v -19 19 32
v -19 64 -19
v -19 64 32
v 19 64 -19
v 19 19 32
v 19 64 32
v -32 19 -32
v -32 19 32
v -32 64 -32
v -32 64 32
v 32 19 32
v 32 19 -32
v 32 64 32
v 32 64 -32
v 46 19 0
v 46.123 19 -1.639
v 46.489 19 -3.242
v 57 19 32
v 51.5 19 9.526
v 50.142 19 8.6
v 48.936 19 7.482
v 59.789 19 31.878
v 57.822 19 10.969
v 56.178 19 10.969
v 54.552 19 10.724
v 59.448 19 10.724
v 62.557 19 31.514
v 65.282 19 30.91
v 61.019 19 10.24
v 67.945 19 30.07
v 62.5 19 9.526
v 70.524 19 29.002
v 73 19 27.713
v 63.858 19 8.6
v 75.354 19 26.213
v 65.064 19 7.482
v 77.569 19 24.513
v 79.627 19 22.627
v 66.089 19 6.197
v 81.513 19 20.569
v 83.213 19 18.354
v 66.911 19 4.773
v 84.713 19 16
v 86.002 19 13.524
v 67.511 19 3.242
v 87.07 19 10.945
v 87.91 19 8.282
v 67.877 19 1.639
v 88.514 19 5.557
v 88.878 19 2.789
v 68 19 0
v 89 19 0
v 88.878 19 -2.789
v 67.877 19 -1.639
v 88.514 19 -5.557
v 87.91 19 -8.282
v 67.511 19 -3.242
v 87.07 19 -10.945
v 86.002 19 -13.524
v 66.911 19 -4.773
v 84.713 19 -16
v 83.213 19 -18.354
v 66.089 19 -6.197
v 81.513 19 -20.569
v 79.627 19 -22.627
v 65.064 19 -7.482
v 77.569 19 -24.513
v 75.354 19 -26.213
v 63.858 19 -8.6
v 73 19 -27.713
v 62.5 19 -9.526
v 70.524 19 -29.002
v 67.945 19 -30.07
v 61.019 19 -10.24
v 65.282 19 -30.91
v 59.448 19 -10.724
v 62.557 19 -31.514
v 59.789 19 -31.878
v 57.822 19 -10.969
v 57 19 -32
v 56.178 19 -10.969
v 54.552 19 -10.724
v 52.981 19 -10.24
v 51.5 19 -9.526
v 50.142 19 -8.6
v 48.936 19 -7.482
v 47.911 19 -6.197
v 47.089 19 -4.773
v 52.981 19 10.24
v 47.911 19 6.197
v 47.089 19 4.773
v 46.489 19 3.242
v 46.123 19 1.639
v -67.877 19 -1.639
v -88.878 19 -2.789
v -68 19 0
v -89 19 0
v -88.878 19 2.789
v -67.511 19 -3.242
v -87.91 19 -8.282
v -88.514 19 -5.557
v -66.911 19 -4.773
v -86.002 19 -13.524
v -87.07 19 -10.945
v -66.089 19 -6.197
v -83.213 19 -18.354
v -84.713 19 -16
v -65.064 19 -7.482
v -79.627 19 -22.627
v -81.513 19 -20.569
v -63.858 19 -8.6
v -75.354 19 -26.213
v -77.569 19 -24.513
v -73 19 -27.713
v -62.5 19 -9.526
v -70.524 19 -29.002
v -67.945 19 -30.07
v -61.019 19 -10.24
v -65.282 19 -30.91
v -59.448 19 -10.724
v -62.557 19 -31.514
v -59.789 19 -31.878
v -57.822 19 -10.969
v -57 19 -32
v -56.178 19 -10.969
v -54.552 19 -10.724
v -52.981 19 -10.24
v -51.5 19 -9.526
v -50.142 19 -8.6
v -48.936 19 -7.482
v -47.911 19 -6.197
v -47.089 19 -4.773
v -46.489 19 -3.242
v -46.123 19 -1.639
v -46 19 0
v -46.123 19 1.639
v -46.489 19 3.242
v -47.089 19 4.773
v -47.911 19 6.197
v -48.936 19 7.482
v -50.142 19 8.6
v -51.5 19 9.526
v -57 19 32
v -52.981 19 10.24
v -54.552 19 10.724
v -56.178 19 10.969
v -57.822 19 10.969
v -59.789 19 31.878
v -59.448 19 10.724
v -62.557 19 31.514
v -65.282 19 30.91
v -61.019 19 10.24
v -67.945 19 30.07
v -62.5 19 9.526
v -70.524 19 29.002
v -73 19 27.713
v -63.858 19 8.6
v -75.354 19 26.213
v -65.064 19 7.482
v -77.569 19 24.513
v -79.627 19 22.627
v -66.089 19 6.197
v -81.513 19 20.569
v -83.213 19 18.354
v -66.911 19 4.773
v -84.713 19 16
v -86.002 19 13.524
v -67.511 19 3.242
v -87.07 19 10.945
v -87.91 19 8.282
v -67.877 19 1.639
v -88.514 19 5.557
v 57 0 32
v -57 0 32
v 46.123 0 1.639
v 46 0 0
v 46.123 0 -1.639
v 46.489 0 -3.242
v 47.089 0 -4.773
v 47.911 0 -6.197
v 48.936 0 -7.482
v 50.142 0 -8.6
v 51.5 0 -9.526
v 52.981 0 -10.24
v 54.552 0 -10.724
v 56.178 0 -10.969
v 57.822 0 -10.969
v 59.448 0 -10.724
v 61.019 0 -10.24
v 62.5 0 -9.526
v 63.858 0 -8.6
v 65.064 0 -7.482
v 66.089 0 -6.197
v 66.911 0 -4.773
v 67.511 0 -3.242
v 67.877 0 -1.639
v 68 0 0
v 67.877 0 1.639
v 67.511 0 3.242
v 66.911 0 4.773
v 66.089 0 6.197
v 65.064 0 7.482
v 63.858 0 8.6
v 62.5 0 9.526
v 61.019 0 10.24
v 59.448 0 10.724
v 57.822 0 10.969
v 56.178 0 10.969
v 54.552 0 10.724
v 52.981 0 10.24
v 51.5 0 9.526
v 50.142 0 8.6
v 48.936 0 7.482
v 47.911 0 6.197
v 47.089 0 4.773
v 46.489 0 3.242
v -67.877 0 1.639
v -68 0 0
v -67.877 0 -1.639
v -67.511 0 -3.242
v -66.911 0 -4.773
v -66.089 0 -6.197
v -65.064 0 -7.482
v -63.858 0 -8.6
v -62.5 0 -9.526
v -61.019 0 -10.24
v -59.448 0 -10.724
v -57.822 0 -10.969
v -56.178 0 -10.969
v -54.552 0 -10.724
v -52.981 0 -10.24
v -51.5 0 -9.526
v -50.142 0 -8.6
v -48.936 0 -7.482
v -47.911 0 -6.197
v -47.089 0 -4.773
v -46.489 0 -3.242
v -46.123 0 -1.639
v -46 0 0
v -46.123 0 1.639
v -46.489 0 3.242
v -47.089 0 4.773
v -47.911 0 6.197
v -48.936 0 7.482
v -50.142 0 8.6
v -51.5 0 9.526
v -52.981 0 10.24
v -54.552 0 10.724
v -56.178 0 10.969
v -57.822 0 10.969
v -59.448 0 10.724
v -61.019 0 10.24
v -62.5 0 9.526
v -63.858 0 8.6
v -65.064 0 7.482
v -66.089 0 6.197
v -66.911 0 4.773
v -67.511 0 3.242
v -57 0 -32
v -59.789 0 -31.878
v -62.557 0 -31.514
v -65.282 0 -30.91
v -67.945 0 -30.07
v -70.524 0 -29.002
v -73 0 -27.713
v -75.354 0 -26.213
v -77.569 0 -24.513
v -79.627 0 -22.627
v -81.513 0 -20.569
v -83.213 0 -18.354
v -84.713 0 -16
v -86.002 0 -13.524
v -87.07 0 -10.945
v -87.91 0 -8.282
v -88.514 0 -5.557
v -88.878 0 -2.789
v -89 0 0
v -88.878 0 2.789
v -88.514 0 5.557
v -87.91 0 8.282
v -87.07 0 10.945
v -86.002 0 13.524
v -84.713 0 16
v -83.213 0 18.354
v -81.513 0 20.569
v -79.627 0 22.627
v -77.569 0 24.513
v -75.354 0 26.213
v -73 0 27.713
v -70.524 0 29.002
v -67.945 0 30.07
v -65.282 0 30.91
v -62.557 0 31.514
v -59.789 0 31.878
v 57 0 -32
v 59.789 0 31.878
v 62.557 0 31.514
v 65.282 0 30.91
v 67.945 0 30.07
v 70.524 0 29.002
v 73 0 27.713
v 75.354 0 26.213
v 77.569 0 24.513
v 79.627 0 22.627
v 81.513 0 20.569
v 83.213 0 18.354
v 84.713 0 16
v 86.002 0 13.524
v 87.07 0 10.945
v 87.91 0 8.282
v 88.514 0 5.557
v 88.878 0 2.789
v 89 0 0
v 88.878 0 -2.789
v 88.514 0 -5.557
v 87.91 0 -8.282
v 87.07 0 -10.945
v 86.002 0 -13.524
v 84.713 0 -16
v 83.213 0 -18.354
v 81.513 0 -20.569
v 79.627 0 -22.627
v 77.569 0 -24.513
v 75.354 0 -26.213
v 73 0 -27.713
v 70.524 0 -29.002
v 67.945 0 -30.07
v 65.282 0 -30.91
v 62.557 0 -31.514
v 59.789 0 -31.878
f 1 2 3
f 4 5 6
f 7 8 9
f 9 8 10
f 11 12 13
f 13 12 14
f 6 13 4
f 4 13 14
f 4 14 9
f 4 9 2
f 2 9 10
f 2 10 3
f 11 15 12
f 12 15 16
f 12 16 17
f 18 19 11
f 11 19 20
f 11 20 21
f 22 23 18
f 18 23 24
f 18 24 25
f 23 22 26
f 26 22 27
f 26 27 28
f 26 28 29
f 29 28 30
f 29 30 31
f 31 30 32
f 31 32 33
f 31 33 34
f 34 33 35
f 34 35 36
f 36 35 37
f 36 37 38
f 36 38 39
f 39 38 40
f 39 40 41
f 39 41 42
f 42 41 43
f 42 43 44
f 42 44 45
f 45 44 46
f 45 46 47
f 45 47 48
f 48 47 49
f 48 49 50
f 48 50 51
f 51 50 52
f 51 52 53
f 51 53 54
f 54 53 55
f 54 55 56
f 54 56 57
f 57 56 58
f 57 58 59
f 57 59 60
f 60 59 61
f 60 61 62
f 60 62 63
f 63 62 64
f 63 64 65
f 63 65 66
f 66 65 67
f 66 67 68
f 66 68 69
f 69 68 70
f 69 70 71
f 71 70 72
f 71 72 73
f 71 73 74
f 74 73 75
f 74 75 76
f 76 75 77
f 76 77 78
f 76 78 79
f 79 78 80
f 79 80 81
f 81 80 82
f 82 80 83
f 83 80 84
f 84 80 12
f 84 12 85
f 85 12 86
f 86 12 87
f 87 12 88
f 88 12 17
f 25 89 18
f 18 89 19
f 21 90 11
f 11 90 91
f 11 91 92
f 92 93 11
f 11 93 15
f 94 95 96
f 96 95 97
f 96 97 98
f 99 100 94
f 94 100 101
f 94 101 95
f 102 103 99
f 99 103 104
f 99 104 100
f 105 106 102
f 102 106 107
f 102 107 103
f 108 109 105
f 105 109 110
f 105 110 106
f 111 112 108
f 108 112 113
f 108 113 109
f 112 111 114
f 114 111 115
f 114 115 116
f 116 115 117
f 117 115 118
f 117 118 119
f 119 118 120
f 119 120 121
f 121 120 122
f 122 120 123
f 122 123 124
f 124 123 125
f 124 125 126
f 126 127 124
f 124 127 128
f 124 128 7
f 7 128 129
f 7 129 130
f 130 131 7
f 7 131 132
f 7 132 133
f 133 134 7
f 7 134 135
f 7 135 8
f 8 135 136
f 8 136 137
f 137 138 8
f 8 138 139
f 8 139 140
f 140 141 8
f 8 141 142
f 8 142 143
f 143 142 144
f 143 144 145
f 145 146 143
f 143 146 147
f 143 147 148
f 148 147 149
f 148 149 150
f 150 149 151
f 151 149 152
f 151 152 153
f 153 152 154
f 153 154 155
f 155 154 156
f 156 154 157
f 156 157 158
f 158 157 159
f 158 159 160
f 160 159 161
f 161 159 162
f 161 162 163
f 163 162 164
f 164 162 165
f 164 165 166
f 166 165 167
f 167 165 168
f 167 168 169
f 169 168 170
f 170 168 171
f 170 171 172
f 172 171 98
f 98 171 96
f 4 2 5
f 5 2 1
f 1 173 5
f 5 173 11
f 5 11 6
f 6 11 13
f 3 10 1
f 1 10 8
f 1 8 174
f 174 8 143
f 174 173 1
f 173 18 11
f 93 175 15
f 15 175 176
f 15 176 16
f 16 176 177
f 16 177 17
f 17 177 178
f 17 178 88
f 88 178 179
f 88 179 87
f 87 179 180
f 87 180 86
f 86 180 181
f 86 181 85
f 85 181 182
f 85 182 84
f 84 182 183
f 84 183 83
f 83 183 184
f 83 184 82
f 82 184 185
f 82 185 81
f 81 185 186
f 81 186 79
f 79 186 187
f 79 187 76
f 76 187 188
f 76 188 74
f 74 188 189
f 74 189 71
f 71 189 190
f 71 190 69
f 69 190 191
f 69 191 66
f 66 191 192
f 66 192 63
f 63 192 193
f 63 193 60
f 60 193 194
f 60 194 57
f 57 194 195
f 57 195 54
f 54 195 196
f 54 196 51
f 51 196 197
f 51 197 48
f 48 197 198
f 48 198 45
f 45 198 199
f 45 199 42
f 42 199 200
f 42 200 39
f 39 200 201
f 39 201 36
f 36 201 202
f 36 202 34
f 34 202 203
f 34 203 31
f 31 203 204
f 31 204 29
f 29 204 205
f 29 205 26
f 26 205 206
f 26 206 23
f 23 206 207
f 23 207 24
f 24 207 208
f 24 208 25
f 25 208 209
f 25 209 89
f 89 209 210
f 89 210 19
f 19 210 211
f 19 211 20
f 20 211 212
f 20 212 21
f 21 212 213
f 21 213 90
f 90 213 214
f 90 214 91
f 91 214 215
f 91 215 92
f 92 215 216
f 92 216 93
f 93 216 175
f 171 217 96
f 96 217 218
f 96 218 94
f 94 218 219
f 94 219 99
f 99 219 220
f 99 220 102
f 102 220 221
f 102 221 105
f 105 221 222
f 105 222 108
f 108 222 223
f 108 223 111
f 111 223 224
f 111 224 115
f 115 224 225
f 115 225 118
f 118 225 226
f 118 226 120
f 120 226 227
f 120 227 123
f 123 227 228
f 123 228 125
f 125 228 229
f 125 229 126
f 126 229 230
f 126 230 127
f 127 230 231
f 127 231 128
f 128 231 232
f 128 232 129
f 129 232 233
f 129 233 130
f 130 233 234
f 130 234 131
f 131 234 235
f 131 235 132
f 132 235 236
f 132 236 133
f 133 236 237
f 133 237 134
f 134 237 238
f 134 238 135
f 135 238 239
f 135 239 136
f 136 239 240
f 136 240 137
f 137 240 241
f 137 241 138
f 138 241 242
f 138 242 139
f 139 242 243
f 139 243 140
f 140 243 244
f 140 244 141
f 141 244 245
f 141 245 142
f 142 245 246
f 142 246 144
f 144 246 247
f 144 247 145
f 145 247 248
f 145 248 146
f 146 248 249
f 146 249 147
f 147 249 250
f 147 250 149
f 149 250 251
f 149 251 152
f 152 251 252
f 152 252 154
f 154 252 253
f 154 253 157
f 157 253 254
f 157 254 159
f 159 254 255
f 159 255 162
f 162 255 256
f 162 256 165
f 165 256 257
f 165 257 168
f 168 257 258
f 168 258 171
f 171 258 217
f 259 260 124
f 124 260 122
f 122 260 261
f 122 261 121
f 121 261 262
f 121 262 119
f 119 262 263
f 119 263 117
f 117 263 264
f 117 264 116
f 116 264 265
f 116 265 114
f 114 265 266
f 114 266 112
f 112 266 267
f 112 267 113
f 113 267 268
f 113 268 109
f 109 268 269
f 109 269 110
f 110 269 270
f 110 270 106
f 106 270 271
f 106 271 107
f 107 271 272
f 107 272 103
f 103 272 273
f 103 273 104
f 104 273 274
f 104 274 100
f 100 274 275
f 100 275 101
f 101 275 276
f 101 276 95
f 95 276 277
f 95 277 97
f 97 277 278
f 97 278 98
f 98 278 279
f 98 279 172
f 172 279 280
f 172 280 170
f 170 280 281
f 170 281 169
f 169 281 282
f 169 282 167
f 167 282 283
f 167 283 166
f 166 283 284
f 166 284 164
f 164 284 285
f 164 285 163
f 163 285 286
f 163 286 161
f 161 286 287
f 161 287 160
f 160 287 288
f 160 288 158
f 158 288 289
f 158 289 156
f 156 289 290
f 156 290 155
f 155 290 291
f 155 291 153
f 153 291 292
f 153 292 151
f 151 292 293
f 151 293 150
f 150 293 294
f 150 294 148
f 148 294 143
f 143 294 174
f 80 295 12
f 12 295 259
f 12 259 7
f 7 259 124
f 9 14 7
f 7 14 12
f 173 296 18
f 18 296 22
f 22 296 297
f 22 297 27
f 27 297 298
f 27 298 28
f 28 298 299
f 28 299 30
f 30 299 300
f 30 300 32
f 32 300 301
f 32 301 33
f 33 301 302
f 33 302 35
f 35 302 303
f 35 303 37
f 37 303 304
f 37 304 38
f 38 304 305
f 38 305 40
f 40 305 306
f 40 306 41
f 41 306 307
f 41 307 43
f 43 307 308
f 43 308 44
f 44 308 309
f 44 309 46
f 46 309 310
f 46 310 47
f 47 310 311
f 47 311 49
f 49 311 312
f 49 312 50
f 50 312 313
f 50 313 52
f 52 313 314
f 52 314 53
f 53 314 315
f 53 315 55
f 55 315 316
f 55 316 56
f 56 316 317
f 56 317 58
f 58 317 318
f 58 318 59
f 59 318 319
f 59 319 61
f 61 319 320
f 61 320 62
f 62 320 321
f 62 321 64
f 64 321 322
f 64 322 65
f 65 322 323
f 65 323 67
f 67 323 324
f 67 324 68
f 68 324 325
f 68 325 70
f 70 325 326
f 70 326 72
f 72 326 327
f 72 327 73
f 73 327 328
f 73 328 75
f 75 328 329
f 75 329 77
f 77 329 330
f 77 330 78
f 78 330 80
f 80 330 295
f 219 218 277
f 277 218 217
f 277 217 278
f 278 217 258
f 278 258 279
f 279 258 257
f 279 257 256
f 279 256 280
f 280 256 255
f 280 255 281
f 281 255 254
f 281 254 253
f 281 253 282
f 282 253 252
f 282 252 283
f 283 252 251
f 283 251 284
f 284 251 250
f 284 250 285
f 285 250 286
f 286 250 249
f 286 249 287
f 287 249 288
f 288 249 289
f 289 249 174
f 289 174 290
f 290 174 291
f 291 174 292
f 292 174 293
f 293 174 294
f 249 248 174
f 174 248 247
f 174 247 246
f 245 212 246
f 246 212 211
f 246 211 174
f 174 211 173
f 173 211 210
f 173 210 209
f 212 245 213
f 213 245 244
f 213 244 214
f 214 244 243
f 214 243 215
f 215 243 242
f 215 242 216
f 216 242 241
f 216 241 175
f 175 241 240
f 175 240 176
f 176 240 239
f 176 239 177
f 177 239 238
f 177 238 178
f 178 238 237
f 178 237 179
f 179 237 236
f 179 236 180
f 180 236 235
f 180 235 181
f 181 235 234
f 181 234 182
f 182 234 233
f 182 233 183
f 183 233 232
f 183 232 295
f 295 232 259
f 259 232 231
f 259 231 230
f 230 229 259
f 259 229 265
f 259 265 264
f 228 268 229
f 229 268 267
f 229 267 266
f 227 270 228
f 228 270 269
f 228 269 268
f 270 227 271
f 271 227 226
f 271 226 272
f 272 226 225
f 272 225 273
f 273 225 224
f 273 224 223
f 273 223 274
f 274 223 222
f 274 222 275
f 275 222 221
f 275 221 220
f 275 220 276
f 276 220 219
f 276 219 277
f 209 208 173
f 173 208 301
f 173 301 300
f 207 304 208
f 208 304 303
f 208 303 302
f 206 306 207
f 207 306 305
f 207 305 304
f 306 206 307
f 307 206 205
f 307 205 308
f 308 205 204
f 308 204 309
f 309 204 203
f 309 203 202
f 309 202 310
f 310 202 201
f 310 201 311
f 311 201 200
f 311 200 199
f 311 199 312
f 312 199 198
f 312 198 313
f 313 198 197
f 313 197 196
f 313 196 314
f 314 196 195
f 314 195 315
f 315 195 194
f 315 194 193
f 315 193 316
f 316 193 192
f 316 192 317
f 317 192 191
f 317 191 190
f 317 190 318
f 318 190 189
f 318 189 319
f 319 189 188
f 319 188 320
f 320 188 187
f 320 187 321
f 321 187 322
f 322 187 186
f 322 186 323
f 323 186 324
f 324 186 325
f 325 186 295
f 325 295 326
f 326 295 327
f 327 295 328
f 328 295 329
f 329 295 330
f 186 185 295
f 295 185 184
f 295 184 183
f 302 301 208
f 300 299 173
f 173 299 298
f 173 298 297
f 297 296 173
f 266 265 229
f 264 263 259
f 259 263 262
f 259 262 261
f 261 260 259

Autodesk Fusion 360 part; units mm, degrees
sketch "Bottom Part" plane through (0, 0, 0) normal (0, 1, 0) x (1, 0, 0)
  line L0 (-57, -32) -> (57, -32)
  line L1 (57, 32) -> (-57, 32)
  circle A0 centre (57, 0) radius 11
  circle A1 centre (-57, 0) radius 11
  arc A2 (-57, 32) -> (-57, -32) centre (-57, 0) ccw
  arc A3 (-57, 32) -> (-57, -32) centre (-57, 0) ccw
  arc A4 (57, -32) -> (57, 32) centre (57, 0) ccw
  dimension "d1" = 114
  dimension "d2" = 64
  dimension "d3" = 32
  dimension "d4" = 32
  dimension "d5" = 22
  dimension "d6" = 22
extrude "Extrude1" add sketch "Bottom Part" along normal blind 19
sketch "Vertical Part" plane through (0, 19, 0) normal (0, 1, 0) x (-1, 0, 0)
  circle A0 centre (57, 0) radius 11
  circle A1 centre (-57, 0) radius 11
  arc A2 (-57, 32) -> (-57, -32) centre (-57, 0) ccw
  line L0 (-57, -32) -> (57, -32)
  arc A3 (57, -32) -> (57, 32) centre (57, 0) ccw
  line L1 (57, 32) -> (-57, 32)
  line L2 (-32, -32) -> (32, -32)
  line L3 (32, -32) -> (32, 32)
  line L4 (32, 32) -> (-32, 32)
  line L5 (-32, 32) -> (-32, -32)
  line L6 (-32, -32) -> (32, 32) construction
  line L7 (32, -32) -> (-32, 32) construction
  line L8 (19, 32) -> (-19, 32)
  line L9 (-19, 32) -> (-19, -19)
  line L10 (-19, -19) -> (19, -19)
  line L11 (19, -19) -> (19, 32)
  dimension "d9" = 64
  dimension "d10" = 64
  dimension "d11" = 38
  dimension "d12" = 51
  dimension "d13" = 13
extrude "Extrude2" add sketch "Vertical Part" along normal blind 45 contours L1 L4 L8 L9 L10 L11
chamfer "Chamfer2" distance 51 distance2 45 1 edges at (0, 64, 32) measured on face at (6.3333, 64, 15)
extrude "Extrude4" add sketch "Vertical Part" along normal blind 45 contours L0 L1 L2 L3 L4 L5 L9 L10 L11
equation "d14 = 64 mm - 19 mm"
